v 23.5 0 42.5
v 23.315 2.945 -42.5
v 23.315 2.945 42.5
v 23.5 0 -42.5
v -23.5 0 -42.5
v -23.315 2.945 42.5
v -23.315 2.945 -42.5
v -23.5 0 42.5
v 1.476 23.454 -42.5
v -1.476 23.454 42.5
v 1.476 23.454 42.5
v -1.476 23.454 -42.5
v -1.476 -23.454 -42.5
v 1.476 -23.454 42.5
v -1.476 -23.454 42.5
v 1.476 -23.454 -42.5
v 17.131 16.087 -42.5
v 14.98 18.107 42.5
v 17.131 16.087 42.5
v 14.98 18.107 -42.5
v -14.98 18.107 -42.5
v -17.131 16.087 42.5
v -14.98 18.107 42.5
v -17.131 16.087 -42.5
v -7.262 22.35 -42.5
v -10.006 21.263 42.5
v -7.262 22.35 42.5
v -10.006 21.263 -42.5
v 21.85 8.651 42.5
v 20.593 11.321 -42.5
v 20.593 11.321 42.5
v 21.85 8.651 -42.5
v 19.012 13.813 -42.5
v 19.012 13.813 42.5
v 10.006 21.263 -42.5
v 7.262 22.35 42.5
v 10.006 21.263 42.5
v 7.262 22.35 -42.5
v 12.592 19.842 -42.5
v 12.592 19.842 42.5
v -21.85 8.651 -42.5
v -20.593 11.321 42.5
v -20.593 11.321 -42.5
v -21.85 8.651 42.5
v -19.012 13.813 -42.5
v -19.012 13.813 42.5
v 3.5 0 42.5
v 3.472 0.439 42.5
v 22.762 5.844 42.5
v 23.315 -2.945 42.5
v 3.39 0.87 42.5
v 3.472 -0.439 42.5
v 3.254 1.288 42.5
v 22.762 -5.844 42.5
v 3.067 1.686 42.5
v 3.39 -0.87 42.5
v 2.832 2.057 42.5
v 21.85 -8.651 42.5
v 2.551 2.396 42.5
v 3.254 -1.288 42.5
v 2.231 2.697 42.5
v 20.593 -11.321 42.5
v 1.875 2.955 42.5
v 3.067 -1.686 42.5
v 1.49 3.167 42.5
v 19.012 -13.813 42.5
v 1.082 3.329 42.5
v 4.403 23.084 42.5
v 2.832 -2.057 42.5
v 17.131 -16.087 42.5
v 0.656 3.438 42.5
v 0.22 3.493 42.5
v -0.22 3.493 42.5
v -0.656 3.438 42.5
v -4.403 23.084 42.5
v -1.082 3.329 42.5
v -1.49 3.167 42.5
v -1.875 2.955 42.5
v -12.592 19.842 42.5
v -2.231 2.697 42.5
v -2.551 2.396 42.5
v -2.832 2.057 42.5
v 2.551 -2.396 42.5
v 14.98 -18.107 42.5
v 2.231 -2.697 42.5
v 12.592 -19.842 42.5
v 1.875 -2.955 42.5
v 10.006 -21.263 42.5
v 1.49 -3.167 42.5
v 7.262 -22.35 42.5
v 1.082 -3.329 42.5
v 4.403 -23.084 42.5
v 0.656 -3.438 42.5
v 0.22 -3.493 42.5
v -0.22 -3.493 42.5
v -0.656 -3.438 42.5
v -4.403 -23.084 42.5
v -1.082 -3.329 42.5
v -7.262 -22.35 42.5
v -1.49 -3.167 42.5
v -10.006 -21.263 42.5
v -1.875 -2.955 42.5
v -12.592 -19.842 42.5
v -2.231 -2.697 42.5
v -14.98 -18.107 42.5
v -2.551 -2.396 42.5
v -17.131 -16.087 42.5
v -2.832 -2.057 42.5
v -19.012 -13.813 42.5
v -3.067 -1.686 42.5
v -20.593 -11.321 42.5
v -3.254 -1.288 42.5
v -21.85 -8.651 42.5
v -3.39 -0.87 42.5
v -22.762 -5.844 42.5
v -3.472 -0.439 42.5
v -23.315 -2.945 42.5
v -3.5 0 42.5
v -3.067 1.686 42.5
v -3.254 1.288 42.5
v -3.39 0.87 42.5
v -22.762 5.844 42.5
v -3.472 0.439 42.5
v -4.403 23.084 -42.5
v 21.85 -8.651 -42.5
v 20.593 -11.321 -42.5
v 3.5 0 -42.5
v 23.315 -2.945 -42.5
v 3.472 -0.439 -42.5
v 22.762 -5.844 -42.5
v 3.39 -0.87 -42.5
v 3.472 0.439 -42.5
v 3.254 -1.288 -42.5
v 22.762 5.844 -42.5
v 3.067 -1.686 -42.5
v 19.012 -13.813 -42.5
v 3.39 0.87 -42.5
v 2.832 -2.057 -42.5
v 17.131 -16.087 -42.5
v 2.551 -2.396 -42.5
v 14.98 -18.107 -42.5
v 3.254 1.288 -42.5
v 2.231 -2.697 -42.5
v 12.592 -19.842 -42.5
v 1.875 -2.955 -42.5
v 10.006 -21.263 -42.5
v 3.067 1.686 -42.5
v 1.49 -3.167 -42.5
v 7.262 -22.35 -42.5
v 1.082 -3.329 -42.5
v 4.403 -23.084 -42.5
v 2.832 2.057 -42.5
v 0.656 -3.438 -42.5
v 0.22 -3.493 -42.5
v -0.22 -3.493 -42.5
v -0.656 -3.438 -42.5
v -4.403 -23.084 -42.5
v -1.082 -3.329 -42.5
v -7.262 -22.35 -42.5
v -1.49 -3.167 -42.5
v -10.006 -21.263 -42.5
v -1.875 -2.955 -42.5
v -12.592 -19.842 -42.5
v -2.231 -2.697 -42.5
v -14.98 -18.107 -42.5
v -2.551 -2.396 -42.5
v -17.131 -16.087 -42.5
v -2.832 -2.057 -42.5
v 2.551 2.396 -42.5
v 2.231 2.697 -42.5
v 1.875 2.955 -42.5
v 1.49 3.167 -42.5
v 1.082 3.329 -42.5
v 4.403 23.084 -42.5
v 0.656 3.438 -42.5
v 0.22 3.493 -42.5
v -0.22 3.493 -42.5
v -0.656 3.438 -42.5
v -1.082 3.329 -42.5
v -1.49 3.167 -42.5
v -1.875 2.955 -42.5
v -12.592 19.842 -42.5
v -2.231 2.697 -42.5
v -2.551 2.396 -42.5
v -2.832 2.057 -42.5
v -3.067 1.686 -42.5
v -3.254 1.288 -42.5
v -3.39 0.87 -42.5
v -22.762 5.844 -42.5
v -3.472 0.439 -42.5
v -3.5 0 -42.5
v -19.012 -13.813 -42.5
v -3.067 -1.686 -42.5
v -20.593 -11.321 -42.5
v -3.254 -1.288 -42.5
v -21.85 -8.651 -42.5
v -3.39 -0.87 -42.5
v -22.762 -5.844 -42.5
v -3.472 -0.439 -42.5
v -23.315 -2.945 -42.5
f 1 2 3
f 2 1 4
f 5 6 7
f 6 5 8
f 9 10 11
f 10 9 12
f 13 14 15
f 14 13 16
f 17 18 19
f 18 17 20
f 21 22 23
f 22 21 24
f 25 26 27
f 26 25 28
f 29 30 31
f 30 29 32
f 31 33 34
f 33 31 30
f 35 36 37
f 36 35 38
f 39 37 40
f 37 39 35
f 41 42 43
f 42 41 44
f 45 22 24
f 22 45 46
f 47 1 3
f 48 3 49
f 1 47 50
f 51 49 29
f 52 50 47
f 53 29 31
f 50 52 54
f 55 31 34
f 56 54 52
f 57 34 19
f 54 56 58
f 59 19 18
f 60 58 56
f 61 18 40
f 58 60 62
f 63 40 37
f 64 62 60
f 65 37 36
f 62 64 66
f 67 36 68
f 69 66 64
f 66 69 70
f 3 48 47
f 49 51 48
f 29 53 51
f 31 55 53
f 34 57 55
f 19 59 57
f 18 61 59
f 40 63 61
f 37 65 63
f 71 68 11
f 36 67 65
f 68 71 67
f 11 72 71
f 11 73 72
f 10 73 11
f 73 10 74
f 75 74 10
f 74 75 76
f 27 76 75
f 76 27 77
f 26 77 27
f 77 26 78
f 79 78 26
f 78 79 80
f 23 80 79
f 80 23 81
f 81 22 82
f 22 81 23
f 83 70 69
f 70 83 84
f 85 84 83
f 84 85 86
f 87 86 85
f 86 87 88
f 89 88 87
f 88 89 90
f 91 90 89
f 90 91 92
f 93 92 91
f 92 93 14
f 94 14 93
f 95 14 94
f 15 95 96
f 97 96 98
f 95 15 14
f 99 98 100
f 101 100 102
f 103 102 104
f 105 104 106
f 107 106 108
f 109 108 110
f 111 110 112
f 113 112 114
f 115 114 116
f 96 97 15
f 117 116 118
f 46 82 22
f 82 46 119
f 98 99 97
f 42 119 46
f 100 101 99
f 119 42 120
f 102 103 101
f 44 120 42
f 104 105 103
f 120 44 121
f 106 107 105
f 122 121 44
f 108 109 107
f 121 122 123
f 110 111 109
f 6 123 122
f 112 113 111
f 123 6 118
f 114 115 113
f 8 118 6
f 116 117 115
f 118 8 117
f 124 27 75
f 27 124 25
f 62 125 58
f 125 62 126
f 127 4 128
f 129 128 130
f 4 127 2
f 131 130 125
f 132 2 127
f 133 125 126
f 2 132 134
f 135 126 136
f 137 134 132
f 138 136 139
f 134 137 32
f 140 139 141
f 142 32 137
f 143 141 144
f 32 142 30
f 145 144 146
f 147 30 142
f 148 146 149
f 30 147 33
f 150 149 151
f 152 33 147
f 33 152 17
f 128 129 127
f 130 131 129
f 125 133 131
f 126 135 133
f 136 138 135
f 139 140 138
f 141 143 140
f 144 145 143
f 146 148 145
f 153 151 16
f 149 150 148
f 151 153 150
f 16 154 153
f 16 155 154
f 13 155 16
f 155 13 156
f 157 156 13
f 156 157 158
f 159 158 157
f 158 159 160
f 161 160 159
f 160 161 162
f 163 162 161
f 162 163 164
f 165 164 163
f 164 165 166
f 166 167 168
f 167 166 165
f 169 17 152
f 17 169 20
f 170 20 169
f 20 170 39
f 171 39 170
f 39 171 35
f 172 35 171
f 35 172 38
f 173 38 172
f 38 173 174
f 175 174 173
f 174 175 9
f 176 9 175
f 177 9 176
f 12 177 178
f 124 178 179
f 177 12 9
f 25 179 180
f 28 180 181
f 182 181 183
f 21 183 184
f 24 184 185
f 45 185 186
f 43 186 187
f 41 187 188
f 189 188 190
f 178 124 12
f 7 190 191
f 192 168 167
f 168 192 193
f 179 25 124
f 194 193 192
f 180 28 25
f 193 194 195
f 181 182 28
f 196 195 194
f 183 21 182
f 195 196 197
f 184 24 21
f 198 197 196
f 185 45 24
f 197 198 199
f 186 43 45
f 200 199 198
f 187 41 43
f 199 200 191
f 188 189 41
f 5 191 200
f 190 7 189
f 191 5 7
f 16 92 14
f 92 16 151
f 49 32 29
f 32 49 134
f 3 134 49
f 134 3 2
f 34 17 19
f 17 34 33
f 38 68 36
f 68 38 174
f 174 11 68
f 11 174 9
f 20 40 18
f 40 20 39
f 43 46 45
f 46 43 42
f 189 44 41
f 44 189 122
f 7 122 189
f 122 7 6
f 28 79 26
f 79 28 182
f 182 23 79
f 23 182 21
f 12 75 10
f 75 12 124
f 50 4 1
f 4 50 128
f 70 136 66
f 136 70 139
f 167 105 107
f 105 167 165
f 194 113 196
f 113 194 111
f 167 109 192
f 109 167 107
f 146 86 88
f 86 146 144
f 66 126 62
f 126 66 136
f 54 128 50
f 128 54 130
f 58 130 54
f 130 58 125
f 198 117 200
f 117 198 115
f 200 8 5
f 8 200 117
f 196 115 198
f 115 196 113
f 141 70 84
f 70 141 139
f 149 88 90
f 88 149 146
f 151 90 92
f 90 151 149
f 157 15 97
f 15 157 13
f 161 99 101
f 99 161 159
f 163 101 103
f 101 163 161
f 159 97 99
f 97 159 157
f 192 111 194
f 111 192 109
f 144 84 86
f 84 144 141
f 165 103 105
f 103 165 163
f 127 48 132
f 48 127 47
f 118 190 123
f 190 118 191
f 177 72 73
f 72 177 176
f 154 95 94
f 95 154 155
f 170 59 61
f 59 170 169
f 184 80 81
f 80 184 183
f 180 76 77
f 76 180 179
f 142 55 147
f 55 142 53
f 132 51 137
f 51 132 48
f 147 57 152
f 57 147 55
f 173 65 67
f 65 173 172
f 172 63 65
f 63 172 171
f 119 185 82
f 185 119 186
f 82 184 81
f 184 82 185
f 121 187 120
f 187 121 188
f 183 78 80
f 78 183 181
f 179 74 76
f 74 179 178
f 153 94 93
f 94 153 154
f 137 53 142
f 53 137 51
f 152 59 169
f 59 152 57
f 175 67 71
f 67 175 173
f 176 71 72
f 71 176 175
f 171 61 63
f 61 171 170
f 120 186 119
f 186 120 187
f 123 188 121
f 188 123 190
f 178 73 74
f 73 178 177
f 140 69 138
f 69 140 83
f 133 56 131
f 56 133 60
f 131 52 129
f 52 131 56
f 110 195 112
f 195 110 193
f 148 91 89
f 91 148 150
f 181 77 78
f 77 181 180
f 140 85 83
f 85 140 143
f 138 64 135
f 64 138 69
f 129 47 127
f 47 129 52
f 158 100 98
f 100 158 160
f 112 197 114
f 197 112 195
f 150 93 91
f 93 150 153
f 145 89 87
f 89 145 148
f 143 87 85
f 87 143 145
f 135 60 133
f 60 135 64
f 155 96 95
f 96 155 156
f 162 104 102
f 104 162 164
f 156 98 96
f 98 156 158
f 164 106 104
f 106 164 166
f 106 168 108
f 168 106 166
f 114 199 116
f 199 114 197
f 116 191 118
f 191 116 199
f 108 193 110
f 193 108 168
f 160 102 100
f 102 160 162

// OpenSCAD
$fn = 50;


difference() {
	union() {
		translate(v = [0, 0, -42.5000000000]) {
			cylinder(h = 85, r = 23.5000000000);
		}
	}
	union() {
		translate(v = [0, 0, -100.0000000000]) {
			cylinder(h = 200, r = 3.5000000000);
		}
	}
}
